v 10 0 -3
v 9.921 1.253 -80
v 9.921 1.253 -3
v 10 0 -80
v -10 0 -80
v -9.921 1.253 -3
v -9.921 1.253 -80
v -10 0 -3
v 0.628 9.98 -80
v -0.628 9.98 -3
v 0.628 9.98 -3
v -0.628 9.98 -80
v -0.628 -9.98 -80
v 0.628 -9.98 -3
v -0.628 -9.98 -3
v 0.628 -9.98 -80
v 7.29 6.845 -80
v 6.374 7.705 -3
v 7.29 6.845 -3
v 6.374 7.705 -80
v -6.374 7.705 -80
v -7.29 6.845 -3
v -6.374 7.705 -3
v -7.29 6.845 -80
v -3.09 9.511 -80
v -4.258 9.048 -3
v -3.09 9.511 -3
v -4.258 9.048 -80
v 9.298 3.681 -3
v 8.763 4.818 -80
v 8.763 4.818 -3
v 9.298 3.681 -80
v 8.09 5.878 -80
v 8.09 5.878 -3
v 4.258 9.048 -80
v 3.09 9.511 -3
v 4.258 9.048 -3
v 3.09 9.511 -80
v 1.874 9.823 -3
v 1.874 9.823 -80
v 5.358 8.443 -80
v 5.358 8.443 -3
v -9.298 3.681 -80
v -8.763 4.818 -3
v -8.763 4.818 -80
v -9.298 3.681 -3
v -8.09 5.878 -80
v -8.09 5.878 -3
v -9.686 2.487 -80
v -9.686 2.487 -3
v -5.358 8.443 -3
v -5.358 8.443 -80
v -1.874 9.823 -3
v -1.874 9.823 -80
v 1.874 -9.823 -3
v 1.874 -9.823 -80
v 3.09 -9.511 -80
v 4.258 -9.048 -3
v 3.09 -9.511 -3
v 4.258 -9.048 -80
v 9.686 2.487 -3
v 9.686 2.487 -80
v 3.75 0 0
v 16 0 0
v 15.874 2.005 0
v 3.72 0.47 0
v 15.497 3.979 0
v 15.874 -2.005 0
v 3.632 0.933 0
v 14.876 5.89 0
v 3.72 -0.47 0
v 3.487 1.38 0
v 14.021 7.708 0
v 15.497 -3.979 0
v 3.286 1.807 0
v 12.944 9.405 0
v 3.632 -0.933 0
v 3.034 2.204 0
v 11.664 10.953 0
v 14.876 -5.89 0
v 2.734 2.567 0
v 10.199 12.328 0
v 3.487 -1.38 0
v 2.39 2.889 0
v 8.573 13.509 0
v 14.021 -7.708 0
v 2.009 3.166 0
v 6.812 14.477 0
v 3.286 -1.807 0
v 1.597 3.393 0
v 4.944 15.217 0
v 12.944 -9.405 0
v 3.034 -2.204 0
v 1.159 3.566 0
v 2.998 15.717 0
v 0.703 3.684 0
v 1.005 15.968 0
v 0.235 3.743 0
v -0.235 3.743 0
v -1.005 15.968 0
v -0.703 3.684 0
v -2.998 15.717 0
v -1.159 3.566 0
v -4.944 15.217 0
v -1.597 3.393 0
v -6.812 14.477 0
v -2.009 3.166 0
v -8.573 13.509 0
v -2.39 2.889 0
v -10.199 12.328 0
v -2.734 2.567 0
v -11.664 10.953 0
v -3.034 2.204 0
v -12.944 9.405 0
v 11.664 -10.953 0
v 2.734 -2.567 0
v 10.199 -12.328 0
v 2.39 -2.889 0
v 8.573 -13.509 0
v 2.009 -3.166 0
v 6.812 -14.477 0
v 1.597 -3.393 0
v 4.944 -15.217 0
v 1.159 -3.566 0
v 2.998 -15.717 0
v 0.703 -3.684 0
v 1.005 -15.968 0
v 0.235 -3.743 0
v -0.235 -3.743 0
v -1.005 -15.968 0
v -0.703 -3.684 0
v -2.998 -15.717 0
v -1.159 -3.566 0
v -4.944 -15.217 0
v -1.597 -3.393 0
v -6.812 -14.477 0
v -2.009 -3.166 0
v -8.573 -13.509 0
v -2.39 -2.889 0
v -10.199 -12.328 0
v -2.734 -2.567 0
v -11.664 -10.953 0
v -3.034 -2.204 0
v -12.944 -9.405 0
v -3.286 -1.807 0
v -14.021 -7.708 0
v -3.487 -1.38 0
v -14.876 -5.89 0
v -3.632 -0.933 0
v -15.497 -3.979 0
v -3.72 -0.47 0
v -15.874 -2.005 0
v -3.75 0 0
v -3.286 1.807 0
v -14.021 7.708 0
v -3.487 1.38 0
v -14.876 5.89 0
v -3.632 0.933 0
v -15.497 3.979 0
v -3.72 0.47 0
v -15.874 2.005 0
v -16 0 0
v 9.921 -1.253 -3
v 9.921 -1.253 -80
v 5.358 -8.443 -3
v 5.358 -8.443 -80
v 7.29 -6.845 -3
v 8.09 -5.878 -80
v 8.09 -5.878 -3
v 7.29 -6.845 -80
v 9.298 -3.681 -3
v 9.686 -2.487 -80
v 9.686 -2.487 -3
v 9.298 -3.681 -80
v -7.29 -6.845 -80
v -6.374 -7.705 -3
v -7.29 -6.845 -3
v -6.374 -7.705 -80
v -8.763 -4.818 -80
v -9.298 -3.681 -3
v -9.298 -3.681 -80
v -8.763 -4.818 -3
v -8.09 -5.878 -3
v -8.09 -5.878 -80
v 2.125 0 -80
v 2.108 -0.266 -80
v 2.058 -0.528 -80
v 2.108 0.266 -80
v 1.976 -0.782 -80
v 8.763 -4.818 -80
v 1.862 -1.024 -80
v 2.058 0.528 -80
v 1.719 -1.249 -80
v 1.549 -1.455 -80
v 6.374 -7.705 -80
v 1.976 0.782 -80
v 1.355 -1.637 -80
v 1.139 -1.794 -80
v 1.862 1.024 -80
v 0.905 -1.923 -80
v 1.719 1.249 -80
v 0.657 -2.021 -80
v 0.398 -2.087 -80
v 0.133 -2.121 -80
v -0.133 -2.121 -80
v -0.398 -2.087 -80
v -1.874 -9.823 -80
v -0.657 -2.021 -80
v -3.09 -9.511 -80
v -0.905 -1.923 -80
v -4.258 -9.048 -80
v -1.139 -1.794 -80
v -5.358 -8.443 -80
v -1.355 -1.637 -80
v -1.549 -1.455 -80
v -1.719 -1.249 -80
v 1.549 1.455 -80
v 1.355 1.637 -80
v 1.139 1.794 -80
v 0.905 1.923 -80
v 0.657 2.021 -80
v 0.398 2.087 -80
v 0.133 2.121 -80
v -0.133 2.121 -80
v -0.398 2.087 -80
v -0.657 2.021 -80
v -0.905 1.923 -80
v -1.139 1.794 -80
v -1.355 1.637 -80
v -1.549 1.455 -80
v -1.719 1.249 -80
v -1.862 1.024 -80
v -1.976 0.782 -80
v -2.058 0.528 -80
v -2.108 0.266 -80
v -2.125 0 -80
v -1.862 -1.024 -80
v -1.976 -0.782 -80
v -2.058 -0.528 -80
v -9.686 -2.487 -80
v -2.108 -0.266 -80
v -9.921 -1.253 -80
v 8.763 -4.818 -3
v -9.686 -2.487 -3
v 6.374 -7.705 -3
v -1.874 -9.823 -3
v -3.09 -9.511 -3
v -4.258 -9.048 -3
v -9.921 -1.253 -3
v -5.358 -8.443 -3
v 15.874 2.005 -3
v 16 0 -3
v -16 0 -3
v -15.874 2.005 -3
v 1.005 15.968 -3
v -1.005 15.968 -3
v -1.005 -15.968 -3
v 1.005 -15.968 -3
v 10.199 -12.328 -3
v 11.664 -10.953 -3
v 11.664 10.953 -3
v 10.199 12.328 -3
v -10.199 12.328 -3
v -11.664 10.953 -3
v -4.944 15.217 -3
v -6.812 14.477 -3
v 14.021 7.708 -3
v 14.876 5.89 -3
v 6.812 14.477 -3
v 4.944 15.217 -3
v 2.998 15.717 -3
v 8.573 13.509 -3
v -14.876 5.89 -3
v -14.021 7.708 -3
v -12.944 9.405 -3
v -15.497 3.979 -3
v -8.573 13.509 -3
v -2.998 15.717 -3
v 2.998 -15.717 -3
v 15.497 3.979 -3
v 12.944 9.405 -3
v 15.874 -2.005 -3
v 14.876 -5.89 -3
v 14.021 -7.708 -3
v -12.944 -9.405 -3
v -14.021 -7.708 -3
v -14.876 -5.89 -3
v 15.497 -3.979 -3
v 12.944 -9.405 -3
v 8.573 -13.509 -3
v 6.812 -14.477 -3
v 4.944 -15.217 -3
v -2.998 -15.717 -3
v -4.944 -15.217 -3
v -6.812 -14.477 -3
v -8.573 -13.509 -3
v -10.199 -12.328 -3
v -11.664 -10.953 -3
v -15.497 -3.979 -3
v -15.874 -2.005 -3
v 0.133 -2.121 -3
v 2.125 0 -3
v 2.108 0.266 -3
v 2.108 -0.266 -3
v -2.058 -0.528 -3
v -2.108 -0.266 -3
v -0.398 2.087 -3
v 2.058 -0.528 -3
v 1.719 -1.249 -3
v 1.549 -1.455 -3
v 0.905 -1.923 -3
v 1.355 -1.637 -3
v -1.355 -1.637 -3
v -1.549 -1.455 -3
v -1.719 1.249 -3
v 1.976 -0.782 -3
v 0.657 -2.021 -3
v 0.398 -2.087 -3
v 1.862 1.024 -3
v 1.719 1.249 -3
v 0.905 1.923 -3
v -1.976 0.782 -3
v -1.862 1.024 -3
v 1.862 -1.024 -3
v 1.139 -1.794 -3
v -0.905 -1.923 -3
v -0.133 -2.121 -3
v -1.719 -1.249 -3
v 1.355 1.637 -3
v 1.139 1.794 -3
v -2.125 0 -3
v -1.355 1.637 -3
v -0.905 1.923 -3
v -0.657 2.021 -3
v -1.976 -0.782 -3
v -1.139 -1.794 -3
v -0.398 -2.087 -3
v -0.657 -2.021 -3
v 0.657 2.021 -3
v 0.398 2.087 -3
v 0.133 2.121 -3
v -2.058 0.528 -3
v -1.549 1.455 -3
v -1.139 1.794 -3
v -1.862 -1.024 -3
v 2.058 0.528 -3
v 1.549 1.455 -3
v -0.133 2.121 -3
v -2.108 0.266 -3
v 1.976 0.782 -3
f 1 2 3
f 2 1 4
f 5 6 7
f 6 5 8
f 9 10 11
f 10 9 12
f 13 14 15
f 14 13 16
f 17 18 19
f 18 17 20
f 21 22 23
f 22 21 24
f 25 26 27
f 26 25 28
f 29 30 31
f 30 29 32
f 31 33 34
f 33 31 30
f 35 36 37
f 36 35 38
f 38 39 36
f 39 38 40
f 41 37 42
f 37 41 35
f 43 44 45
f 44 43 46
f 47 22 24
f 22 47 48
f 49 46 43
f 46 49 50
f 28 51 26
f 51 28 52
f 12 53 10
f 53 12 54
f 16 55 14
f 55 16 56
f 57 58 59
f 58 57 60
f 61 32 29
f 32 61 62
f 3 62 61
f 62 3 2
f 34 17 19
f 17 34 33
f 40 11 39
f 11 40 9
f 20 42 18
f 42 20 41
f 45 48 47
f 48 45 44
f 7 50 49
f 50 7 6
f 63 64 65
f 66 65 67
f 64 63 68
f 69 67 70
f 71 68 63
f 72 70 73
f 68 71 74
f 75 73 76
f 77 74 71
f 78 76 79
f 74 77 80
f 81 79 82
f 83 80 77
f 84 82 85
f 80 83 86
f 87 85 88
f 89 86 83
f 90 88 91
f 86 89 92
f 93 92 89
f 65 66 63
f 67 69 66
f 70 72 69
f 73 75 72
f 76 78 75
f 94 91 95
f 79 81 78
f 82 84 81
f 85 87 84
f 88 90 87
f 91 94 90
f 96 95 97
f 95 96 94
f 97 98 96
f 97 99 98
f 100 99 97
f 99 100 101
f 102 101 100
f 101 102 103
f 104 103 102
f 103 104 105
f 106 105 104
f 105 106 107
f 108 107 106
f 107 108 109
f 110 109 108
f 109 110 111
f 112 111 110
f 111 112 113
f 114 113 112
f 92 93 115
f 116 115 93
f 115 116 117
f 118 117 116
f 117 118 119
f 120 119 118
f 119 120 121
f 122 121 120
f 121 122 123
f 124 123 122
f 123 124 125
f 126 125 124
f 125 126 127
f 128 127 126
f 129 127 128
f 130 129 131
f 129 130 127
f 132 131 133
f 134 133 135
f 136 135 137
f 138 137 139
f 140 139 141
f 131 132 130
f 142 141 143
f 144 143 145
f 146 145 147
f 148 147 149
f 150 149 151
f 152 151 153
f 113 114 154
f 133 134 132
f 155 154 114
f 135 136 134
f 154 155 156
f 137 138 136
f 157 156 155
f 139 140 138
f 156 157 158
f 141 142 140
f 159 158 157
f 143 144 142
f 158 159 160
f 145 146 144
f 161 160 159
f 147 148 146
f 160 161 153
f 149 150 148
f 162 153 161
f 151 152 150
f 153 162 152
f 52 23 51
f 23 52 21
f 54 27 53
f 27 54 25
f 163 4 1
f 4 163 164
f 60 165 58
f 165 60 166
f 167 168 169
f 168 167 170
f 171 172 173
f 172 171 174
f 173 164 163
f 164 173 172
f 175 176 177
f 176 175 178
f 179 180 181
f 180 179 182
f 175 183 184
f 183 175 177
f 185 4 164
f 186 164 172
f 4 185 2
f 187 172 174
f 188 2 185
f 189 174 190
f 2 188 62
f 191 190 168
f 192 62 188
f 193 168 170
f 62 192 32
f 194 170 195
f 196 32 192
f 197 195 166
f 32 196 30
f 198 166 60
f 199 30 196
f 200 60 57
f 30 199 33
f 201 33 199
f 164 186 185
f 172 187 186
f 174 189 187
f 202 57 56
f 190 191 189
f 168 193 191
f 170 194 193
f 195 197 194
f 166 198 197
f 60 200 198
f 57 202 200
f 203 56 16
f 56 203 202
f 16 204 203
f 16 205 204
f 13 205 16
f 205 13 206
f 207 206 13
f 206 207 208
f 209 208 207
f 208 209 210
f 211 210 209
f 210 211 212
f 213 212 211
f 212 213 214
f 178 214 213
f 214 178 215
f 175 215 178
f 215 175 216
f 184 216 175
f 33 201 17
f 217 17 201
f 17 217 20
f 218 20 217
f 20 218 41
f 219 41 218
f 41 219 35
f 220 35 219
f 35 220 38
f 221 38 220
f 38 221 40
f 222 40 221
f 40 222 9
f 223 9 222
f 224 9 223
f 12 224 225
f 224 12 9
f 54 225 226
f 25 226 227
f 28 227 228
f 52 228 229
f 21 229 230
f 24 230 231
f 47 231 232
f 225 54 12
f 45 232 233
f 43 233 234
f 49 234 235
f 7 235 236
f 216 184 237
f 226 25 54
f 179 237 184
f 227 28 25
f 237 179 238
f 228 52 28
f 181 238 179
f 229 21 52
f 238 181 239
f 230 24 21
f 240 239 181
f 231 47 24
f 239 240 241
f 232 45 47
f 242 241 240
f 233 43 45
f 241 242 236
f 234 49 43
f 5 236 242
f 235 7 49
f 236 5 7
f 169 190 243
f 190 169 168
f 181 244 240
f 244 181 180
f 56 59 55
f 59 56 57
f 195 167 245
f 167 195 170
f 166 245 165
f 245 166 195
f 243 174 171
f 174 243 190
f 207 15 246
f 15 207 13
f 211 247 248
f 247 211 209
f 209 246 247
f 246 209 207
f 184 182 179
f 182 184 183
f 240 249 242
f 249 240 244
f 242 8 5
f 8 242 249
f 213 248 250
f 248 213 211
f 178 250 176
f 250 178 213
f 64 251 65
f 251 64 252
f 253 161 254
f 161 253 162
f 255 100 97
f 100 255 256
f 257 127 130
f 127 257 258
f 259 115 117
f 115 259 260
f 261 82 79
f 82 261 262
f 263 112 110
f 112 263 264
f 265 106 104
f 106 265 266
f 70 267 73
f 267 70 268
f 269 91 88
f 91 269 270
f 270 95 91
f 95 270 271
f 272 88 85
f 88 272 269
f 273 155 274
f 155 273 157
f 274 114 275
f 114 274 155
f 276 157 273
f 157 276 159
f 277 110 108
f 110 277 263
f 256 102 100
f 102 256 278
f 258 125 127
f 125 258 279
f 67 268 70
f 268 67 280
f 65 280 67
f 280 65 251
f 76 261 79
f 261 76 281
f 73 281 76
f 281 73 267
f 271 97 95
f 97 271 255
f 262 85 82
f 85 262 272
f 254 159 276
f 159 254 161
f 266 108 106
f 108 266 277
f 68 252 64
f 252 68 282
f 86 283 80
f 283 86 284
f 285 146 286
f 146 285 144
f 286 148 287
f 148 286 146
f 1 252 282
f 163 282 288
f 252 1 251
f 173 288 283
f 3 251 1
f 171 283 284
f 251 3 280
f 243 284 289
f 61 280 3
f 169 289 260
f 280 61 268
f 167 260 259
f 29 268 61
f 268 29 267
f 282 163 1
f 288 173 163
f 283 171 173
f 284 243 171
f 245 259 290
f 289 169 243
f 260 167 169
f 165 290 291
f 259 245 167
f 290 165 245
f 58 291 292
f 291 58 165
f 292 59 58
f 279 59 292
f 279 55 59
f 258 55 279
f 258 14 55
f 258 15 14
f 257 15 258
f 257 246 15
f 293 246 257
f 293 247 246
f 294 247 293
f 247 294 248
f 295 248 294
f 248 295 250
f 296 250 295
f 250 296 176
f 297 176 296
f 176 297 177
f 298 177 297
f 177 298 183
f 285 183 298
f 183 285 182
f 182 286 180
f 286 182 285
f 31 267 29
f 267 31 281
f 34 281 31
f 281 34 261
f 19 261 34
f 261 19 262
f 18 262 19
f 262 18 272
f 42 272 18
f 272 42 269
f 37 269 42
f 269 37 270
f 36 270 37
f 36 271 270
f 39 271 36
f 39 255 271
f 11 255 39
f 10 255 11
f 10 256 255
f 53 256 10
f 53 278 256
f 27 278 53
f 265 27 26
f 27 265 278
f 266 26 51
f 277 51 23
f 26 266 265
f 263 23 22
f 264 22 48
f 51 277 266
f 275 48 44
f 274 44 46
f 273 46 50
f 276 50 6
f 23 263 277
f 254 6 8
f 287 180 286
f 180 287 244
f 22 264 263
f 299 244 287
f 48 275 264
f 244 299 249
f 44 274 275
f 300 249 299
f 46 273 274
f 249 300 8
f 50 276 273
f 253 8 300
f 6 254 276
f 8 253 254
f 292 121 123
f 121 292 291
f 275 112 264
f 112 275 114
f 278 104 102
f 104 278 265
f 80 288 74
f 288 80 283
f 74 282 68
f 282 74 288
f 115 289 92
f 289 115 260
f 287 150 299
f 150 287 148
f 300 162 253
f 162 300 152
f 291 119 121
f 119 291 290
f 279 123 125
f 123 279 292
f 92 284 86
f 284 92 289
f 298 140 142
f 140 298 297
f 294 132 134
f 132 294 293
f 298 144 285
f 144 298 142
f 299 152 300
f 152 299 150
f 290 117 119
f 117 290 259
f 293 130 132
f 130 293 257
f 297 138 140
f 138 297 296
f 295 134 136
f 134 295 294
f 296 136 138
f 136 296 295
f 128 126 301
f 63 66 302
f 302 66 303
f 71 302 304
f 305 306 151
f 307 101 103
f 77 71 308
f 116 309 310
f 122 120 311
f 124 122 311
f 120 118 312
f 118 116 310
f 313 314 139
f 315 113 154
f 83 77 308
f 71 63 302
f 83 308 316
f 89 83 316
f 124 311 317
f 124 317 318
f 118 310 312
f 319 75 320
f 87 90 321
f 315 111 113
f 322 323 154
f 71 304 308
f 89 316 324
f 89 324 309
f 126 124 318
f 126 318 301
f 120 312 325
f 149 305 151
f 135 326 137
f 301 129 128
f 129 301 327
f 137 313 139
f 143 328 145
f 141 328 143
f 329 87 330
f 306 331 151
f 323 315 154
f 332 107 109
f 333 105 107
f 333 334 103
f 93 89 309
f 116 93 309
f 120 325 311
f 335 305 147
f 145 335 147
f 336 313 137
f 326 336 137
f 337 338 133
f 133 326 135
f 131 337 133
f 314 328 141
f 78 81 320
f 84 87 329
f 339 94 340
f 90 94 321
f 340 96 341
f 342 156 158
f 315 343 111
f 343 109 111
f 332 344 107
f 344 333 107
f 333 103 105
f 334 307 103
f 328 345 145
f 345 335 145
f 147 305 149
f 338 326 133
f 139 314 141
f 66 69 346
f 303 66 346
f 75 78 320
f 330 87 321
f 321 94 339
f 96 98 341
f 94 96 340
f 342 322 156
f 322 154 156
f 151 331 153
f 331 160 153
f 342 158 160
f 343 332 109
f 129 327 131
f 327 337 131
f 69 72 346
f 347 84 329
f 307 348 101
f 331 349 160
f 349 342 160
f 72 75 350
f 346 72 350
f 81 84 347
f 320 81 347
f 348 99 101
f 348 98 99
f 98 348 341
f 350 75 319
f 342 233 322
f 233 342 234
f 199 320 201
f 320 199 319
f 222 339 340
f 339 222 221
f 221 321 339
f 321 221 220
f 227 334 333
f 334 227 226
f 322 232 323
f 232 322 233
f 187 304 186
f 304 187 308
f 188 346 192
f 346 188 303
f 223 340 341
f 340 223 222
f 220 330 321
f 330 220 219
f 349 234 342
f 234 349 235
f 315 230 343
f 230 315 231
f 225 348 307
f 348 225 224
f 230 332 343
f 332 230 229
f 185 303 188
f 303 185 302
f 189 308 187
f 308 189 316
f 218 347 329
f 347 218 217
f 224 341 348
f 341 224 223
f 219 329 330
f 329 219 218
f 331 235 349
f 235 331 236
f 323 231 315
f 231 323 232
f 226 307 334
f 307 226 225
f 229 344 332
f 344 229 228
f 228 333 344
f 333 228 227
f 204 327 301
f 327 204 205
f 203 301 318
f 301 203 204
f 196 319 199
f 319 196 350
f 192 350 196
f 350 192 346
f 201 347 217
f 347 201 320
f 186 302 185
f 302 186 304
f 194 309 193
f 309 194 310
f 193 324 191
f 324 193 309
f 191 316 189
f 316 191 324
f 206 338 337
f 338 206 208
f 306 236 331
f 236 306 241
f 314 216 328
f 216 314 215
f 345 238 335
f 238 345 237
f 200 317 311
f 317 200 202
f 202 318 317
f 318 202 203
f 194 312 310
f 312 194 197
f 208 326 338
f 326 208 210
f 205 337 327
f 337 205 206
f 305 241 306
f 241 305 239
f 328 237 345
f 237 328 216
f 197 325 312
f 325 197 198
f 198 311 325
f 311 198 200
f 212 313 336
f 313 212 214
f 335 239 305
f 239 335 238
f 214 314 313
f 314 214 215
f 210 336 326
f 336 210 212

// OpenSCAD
$fn = 50;


difference() {
	union() {
		translate(v = [0, 0, -80.0000000000]) {
			cylinder(h = 80, r = 10.0000000000);
		}
		translate(v = [0, 0, -3.0000000000]) {
			cylinder(h = 3, r = 16.0000000000);
		}
	}
	union() {
		translate(v = [0, 0, 0]) {
			rotate(a = [0, 0, 0]) {
				difference() {
					union() {
						#translate(v = [0, 0, -80.0000000000]) {
							cylinder(h = 80, r = 2.0000000000);
						}
						#translate(v = [0, 0, -3]) {
							cylinder(h = 3, r = 10.0000000000, r1 = 2.1250000000, r2 = 3.7500000000);
						}
						#translate(v = [0, 0, -80.0000000000]) {
							cylinder(h = 80, r = 2.1250000000);
						}
						#translate(v = [0, 0, -80.0000000000]) {
							cylinder(h = 80, r = 2.0000000000);
						}
					}
					union();
				}
			}
		}
	}
}
